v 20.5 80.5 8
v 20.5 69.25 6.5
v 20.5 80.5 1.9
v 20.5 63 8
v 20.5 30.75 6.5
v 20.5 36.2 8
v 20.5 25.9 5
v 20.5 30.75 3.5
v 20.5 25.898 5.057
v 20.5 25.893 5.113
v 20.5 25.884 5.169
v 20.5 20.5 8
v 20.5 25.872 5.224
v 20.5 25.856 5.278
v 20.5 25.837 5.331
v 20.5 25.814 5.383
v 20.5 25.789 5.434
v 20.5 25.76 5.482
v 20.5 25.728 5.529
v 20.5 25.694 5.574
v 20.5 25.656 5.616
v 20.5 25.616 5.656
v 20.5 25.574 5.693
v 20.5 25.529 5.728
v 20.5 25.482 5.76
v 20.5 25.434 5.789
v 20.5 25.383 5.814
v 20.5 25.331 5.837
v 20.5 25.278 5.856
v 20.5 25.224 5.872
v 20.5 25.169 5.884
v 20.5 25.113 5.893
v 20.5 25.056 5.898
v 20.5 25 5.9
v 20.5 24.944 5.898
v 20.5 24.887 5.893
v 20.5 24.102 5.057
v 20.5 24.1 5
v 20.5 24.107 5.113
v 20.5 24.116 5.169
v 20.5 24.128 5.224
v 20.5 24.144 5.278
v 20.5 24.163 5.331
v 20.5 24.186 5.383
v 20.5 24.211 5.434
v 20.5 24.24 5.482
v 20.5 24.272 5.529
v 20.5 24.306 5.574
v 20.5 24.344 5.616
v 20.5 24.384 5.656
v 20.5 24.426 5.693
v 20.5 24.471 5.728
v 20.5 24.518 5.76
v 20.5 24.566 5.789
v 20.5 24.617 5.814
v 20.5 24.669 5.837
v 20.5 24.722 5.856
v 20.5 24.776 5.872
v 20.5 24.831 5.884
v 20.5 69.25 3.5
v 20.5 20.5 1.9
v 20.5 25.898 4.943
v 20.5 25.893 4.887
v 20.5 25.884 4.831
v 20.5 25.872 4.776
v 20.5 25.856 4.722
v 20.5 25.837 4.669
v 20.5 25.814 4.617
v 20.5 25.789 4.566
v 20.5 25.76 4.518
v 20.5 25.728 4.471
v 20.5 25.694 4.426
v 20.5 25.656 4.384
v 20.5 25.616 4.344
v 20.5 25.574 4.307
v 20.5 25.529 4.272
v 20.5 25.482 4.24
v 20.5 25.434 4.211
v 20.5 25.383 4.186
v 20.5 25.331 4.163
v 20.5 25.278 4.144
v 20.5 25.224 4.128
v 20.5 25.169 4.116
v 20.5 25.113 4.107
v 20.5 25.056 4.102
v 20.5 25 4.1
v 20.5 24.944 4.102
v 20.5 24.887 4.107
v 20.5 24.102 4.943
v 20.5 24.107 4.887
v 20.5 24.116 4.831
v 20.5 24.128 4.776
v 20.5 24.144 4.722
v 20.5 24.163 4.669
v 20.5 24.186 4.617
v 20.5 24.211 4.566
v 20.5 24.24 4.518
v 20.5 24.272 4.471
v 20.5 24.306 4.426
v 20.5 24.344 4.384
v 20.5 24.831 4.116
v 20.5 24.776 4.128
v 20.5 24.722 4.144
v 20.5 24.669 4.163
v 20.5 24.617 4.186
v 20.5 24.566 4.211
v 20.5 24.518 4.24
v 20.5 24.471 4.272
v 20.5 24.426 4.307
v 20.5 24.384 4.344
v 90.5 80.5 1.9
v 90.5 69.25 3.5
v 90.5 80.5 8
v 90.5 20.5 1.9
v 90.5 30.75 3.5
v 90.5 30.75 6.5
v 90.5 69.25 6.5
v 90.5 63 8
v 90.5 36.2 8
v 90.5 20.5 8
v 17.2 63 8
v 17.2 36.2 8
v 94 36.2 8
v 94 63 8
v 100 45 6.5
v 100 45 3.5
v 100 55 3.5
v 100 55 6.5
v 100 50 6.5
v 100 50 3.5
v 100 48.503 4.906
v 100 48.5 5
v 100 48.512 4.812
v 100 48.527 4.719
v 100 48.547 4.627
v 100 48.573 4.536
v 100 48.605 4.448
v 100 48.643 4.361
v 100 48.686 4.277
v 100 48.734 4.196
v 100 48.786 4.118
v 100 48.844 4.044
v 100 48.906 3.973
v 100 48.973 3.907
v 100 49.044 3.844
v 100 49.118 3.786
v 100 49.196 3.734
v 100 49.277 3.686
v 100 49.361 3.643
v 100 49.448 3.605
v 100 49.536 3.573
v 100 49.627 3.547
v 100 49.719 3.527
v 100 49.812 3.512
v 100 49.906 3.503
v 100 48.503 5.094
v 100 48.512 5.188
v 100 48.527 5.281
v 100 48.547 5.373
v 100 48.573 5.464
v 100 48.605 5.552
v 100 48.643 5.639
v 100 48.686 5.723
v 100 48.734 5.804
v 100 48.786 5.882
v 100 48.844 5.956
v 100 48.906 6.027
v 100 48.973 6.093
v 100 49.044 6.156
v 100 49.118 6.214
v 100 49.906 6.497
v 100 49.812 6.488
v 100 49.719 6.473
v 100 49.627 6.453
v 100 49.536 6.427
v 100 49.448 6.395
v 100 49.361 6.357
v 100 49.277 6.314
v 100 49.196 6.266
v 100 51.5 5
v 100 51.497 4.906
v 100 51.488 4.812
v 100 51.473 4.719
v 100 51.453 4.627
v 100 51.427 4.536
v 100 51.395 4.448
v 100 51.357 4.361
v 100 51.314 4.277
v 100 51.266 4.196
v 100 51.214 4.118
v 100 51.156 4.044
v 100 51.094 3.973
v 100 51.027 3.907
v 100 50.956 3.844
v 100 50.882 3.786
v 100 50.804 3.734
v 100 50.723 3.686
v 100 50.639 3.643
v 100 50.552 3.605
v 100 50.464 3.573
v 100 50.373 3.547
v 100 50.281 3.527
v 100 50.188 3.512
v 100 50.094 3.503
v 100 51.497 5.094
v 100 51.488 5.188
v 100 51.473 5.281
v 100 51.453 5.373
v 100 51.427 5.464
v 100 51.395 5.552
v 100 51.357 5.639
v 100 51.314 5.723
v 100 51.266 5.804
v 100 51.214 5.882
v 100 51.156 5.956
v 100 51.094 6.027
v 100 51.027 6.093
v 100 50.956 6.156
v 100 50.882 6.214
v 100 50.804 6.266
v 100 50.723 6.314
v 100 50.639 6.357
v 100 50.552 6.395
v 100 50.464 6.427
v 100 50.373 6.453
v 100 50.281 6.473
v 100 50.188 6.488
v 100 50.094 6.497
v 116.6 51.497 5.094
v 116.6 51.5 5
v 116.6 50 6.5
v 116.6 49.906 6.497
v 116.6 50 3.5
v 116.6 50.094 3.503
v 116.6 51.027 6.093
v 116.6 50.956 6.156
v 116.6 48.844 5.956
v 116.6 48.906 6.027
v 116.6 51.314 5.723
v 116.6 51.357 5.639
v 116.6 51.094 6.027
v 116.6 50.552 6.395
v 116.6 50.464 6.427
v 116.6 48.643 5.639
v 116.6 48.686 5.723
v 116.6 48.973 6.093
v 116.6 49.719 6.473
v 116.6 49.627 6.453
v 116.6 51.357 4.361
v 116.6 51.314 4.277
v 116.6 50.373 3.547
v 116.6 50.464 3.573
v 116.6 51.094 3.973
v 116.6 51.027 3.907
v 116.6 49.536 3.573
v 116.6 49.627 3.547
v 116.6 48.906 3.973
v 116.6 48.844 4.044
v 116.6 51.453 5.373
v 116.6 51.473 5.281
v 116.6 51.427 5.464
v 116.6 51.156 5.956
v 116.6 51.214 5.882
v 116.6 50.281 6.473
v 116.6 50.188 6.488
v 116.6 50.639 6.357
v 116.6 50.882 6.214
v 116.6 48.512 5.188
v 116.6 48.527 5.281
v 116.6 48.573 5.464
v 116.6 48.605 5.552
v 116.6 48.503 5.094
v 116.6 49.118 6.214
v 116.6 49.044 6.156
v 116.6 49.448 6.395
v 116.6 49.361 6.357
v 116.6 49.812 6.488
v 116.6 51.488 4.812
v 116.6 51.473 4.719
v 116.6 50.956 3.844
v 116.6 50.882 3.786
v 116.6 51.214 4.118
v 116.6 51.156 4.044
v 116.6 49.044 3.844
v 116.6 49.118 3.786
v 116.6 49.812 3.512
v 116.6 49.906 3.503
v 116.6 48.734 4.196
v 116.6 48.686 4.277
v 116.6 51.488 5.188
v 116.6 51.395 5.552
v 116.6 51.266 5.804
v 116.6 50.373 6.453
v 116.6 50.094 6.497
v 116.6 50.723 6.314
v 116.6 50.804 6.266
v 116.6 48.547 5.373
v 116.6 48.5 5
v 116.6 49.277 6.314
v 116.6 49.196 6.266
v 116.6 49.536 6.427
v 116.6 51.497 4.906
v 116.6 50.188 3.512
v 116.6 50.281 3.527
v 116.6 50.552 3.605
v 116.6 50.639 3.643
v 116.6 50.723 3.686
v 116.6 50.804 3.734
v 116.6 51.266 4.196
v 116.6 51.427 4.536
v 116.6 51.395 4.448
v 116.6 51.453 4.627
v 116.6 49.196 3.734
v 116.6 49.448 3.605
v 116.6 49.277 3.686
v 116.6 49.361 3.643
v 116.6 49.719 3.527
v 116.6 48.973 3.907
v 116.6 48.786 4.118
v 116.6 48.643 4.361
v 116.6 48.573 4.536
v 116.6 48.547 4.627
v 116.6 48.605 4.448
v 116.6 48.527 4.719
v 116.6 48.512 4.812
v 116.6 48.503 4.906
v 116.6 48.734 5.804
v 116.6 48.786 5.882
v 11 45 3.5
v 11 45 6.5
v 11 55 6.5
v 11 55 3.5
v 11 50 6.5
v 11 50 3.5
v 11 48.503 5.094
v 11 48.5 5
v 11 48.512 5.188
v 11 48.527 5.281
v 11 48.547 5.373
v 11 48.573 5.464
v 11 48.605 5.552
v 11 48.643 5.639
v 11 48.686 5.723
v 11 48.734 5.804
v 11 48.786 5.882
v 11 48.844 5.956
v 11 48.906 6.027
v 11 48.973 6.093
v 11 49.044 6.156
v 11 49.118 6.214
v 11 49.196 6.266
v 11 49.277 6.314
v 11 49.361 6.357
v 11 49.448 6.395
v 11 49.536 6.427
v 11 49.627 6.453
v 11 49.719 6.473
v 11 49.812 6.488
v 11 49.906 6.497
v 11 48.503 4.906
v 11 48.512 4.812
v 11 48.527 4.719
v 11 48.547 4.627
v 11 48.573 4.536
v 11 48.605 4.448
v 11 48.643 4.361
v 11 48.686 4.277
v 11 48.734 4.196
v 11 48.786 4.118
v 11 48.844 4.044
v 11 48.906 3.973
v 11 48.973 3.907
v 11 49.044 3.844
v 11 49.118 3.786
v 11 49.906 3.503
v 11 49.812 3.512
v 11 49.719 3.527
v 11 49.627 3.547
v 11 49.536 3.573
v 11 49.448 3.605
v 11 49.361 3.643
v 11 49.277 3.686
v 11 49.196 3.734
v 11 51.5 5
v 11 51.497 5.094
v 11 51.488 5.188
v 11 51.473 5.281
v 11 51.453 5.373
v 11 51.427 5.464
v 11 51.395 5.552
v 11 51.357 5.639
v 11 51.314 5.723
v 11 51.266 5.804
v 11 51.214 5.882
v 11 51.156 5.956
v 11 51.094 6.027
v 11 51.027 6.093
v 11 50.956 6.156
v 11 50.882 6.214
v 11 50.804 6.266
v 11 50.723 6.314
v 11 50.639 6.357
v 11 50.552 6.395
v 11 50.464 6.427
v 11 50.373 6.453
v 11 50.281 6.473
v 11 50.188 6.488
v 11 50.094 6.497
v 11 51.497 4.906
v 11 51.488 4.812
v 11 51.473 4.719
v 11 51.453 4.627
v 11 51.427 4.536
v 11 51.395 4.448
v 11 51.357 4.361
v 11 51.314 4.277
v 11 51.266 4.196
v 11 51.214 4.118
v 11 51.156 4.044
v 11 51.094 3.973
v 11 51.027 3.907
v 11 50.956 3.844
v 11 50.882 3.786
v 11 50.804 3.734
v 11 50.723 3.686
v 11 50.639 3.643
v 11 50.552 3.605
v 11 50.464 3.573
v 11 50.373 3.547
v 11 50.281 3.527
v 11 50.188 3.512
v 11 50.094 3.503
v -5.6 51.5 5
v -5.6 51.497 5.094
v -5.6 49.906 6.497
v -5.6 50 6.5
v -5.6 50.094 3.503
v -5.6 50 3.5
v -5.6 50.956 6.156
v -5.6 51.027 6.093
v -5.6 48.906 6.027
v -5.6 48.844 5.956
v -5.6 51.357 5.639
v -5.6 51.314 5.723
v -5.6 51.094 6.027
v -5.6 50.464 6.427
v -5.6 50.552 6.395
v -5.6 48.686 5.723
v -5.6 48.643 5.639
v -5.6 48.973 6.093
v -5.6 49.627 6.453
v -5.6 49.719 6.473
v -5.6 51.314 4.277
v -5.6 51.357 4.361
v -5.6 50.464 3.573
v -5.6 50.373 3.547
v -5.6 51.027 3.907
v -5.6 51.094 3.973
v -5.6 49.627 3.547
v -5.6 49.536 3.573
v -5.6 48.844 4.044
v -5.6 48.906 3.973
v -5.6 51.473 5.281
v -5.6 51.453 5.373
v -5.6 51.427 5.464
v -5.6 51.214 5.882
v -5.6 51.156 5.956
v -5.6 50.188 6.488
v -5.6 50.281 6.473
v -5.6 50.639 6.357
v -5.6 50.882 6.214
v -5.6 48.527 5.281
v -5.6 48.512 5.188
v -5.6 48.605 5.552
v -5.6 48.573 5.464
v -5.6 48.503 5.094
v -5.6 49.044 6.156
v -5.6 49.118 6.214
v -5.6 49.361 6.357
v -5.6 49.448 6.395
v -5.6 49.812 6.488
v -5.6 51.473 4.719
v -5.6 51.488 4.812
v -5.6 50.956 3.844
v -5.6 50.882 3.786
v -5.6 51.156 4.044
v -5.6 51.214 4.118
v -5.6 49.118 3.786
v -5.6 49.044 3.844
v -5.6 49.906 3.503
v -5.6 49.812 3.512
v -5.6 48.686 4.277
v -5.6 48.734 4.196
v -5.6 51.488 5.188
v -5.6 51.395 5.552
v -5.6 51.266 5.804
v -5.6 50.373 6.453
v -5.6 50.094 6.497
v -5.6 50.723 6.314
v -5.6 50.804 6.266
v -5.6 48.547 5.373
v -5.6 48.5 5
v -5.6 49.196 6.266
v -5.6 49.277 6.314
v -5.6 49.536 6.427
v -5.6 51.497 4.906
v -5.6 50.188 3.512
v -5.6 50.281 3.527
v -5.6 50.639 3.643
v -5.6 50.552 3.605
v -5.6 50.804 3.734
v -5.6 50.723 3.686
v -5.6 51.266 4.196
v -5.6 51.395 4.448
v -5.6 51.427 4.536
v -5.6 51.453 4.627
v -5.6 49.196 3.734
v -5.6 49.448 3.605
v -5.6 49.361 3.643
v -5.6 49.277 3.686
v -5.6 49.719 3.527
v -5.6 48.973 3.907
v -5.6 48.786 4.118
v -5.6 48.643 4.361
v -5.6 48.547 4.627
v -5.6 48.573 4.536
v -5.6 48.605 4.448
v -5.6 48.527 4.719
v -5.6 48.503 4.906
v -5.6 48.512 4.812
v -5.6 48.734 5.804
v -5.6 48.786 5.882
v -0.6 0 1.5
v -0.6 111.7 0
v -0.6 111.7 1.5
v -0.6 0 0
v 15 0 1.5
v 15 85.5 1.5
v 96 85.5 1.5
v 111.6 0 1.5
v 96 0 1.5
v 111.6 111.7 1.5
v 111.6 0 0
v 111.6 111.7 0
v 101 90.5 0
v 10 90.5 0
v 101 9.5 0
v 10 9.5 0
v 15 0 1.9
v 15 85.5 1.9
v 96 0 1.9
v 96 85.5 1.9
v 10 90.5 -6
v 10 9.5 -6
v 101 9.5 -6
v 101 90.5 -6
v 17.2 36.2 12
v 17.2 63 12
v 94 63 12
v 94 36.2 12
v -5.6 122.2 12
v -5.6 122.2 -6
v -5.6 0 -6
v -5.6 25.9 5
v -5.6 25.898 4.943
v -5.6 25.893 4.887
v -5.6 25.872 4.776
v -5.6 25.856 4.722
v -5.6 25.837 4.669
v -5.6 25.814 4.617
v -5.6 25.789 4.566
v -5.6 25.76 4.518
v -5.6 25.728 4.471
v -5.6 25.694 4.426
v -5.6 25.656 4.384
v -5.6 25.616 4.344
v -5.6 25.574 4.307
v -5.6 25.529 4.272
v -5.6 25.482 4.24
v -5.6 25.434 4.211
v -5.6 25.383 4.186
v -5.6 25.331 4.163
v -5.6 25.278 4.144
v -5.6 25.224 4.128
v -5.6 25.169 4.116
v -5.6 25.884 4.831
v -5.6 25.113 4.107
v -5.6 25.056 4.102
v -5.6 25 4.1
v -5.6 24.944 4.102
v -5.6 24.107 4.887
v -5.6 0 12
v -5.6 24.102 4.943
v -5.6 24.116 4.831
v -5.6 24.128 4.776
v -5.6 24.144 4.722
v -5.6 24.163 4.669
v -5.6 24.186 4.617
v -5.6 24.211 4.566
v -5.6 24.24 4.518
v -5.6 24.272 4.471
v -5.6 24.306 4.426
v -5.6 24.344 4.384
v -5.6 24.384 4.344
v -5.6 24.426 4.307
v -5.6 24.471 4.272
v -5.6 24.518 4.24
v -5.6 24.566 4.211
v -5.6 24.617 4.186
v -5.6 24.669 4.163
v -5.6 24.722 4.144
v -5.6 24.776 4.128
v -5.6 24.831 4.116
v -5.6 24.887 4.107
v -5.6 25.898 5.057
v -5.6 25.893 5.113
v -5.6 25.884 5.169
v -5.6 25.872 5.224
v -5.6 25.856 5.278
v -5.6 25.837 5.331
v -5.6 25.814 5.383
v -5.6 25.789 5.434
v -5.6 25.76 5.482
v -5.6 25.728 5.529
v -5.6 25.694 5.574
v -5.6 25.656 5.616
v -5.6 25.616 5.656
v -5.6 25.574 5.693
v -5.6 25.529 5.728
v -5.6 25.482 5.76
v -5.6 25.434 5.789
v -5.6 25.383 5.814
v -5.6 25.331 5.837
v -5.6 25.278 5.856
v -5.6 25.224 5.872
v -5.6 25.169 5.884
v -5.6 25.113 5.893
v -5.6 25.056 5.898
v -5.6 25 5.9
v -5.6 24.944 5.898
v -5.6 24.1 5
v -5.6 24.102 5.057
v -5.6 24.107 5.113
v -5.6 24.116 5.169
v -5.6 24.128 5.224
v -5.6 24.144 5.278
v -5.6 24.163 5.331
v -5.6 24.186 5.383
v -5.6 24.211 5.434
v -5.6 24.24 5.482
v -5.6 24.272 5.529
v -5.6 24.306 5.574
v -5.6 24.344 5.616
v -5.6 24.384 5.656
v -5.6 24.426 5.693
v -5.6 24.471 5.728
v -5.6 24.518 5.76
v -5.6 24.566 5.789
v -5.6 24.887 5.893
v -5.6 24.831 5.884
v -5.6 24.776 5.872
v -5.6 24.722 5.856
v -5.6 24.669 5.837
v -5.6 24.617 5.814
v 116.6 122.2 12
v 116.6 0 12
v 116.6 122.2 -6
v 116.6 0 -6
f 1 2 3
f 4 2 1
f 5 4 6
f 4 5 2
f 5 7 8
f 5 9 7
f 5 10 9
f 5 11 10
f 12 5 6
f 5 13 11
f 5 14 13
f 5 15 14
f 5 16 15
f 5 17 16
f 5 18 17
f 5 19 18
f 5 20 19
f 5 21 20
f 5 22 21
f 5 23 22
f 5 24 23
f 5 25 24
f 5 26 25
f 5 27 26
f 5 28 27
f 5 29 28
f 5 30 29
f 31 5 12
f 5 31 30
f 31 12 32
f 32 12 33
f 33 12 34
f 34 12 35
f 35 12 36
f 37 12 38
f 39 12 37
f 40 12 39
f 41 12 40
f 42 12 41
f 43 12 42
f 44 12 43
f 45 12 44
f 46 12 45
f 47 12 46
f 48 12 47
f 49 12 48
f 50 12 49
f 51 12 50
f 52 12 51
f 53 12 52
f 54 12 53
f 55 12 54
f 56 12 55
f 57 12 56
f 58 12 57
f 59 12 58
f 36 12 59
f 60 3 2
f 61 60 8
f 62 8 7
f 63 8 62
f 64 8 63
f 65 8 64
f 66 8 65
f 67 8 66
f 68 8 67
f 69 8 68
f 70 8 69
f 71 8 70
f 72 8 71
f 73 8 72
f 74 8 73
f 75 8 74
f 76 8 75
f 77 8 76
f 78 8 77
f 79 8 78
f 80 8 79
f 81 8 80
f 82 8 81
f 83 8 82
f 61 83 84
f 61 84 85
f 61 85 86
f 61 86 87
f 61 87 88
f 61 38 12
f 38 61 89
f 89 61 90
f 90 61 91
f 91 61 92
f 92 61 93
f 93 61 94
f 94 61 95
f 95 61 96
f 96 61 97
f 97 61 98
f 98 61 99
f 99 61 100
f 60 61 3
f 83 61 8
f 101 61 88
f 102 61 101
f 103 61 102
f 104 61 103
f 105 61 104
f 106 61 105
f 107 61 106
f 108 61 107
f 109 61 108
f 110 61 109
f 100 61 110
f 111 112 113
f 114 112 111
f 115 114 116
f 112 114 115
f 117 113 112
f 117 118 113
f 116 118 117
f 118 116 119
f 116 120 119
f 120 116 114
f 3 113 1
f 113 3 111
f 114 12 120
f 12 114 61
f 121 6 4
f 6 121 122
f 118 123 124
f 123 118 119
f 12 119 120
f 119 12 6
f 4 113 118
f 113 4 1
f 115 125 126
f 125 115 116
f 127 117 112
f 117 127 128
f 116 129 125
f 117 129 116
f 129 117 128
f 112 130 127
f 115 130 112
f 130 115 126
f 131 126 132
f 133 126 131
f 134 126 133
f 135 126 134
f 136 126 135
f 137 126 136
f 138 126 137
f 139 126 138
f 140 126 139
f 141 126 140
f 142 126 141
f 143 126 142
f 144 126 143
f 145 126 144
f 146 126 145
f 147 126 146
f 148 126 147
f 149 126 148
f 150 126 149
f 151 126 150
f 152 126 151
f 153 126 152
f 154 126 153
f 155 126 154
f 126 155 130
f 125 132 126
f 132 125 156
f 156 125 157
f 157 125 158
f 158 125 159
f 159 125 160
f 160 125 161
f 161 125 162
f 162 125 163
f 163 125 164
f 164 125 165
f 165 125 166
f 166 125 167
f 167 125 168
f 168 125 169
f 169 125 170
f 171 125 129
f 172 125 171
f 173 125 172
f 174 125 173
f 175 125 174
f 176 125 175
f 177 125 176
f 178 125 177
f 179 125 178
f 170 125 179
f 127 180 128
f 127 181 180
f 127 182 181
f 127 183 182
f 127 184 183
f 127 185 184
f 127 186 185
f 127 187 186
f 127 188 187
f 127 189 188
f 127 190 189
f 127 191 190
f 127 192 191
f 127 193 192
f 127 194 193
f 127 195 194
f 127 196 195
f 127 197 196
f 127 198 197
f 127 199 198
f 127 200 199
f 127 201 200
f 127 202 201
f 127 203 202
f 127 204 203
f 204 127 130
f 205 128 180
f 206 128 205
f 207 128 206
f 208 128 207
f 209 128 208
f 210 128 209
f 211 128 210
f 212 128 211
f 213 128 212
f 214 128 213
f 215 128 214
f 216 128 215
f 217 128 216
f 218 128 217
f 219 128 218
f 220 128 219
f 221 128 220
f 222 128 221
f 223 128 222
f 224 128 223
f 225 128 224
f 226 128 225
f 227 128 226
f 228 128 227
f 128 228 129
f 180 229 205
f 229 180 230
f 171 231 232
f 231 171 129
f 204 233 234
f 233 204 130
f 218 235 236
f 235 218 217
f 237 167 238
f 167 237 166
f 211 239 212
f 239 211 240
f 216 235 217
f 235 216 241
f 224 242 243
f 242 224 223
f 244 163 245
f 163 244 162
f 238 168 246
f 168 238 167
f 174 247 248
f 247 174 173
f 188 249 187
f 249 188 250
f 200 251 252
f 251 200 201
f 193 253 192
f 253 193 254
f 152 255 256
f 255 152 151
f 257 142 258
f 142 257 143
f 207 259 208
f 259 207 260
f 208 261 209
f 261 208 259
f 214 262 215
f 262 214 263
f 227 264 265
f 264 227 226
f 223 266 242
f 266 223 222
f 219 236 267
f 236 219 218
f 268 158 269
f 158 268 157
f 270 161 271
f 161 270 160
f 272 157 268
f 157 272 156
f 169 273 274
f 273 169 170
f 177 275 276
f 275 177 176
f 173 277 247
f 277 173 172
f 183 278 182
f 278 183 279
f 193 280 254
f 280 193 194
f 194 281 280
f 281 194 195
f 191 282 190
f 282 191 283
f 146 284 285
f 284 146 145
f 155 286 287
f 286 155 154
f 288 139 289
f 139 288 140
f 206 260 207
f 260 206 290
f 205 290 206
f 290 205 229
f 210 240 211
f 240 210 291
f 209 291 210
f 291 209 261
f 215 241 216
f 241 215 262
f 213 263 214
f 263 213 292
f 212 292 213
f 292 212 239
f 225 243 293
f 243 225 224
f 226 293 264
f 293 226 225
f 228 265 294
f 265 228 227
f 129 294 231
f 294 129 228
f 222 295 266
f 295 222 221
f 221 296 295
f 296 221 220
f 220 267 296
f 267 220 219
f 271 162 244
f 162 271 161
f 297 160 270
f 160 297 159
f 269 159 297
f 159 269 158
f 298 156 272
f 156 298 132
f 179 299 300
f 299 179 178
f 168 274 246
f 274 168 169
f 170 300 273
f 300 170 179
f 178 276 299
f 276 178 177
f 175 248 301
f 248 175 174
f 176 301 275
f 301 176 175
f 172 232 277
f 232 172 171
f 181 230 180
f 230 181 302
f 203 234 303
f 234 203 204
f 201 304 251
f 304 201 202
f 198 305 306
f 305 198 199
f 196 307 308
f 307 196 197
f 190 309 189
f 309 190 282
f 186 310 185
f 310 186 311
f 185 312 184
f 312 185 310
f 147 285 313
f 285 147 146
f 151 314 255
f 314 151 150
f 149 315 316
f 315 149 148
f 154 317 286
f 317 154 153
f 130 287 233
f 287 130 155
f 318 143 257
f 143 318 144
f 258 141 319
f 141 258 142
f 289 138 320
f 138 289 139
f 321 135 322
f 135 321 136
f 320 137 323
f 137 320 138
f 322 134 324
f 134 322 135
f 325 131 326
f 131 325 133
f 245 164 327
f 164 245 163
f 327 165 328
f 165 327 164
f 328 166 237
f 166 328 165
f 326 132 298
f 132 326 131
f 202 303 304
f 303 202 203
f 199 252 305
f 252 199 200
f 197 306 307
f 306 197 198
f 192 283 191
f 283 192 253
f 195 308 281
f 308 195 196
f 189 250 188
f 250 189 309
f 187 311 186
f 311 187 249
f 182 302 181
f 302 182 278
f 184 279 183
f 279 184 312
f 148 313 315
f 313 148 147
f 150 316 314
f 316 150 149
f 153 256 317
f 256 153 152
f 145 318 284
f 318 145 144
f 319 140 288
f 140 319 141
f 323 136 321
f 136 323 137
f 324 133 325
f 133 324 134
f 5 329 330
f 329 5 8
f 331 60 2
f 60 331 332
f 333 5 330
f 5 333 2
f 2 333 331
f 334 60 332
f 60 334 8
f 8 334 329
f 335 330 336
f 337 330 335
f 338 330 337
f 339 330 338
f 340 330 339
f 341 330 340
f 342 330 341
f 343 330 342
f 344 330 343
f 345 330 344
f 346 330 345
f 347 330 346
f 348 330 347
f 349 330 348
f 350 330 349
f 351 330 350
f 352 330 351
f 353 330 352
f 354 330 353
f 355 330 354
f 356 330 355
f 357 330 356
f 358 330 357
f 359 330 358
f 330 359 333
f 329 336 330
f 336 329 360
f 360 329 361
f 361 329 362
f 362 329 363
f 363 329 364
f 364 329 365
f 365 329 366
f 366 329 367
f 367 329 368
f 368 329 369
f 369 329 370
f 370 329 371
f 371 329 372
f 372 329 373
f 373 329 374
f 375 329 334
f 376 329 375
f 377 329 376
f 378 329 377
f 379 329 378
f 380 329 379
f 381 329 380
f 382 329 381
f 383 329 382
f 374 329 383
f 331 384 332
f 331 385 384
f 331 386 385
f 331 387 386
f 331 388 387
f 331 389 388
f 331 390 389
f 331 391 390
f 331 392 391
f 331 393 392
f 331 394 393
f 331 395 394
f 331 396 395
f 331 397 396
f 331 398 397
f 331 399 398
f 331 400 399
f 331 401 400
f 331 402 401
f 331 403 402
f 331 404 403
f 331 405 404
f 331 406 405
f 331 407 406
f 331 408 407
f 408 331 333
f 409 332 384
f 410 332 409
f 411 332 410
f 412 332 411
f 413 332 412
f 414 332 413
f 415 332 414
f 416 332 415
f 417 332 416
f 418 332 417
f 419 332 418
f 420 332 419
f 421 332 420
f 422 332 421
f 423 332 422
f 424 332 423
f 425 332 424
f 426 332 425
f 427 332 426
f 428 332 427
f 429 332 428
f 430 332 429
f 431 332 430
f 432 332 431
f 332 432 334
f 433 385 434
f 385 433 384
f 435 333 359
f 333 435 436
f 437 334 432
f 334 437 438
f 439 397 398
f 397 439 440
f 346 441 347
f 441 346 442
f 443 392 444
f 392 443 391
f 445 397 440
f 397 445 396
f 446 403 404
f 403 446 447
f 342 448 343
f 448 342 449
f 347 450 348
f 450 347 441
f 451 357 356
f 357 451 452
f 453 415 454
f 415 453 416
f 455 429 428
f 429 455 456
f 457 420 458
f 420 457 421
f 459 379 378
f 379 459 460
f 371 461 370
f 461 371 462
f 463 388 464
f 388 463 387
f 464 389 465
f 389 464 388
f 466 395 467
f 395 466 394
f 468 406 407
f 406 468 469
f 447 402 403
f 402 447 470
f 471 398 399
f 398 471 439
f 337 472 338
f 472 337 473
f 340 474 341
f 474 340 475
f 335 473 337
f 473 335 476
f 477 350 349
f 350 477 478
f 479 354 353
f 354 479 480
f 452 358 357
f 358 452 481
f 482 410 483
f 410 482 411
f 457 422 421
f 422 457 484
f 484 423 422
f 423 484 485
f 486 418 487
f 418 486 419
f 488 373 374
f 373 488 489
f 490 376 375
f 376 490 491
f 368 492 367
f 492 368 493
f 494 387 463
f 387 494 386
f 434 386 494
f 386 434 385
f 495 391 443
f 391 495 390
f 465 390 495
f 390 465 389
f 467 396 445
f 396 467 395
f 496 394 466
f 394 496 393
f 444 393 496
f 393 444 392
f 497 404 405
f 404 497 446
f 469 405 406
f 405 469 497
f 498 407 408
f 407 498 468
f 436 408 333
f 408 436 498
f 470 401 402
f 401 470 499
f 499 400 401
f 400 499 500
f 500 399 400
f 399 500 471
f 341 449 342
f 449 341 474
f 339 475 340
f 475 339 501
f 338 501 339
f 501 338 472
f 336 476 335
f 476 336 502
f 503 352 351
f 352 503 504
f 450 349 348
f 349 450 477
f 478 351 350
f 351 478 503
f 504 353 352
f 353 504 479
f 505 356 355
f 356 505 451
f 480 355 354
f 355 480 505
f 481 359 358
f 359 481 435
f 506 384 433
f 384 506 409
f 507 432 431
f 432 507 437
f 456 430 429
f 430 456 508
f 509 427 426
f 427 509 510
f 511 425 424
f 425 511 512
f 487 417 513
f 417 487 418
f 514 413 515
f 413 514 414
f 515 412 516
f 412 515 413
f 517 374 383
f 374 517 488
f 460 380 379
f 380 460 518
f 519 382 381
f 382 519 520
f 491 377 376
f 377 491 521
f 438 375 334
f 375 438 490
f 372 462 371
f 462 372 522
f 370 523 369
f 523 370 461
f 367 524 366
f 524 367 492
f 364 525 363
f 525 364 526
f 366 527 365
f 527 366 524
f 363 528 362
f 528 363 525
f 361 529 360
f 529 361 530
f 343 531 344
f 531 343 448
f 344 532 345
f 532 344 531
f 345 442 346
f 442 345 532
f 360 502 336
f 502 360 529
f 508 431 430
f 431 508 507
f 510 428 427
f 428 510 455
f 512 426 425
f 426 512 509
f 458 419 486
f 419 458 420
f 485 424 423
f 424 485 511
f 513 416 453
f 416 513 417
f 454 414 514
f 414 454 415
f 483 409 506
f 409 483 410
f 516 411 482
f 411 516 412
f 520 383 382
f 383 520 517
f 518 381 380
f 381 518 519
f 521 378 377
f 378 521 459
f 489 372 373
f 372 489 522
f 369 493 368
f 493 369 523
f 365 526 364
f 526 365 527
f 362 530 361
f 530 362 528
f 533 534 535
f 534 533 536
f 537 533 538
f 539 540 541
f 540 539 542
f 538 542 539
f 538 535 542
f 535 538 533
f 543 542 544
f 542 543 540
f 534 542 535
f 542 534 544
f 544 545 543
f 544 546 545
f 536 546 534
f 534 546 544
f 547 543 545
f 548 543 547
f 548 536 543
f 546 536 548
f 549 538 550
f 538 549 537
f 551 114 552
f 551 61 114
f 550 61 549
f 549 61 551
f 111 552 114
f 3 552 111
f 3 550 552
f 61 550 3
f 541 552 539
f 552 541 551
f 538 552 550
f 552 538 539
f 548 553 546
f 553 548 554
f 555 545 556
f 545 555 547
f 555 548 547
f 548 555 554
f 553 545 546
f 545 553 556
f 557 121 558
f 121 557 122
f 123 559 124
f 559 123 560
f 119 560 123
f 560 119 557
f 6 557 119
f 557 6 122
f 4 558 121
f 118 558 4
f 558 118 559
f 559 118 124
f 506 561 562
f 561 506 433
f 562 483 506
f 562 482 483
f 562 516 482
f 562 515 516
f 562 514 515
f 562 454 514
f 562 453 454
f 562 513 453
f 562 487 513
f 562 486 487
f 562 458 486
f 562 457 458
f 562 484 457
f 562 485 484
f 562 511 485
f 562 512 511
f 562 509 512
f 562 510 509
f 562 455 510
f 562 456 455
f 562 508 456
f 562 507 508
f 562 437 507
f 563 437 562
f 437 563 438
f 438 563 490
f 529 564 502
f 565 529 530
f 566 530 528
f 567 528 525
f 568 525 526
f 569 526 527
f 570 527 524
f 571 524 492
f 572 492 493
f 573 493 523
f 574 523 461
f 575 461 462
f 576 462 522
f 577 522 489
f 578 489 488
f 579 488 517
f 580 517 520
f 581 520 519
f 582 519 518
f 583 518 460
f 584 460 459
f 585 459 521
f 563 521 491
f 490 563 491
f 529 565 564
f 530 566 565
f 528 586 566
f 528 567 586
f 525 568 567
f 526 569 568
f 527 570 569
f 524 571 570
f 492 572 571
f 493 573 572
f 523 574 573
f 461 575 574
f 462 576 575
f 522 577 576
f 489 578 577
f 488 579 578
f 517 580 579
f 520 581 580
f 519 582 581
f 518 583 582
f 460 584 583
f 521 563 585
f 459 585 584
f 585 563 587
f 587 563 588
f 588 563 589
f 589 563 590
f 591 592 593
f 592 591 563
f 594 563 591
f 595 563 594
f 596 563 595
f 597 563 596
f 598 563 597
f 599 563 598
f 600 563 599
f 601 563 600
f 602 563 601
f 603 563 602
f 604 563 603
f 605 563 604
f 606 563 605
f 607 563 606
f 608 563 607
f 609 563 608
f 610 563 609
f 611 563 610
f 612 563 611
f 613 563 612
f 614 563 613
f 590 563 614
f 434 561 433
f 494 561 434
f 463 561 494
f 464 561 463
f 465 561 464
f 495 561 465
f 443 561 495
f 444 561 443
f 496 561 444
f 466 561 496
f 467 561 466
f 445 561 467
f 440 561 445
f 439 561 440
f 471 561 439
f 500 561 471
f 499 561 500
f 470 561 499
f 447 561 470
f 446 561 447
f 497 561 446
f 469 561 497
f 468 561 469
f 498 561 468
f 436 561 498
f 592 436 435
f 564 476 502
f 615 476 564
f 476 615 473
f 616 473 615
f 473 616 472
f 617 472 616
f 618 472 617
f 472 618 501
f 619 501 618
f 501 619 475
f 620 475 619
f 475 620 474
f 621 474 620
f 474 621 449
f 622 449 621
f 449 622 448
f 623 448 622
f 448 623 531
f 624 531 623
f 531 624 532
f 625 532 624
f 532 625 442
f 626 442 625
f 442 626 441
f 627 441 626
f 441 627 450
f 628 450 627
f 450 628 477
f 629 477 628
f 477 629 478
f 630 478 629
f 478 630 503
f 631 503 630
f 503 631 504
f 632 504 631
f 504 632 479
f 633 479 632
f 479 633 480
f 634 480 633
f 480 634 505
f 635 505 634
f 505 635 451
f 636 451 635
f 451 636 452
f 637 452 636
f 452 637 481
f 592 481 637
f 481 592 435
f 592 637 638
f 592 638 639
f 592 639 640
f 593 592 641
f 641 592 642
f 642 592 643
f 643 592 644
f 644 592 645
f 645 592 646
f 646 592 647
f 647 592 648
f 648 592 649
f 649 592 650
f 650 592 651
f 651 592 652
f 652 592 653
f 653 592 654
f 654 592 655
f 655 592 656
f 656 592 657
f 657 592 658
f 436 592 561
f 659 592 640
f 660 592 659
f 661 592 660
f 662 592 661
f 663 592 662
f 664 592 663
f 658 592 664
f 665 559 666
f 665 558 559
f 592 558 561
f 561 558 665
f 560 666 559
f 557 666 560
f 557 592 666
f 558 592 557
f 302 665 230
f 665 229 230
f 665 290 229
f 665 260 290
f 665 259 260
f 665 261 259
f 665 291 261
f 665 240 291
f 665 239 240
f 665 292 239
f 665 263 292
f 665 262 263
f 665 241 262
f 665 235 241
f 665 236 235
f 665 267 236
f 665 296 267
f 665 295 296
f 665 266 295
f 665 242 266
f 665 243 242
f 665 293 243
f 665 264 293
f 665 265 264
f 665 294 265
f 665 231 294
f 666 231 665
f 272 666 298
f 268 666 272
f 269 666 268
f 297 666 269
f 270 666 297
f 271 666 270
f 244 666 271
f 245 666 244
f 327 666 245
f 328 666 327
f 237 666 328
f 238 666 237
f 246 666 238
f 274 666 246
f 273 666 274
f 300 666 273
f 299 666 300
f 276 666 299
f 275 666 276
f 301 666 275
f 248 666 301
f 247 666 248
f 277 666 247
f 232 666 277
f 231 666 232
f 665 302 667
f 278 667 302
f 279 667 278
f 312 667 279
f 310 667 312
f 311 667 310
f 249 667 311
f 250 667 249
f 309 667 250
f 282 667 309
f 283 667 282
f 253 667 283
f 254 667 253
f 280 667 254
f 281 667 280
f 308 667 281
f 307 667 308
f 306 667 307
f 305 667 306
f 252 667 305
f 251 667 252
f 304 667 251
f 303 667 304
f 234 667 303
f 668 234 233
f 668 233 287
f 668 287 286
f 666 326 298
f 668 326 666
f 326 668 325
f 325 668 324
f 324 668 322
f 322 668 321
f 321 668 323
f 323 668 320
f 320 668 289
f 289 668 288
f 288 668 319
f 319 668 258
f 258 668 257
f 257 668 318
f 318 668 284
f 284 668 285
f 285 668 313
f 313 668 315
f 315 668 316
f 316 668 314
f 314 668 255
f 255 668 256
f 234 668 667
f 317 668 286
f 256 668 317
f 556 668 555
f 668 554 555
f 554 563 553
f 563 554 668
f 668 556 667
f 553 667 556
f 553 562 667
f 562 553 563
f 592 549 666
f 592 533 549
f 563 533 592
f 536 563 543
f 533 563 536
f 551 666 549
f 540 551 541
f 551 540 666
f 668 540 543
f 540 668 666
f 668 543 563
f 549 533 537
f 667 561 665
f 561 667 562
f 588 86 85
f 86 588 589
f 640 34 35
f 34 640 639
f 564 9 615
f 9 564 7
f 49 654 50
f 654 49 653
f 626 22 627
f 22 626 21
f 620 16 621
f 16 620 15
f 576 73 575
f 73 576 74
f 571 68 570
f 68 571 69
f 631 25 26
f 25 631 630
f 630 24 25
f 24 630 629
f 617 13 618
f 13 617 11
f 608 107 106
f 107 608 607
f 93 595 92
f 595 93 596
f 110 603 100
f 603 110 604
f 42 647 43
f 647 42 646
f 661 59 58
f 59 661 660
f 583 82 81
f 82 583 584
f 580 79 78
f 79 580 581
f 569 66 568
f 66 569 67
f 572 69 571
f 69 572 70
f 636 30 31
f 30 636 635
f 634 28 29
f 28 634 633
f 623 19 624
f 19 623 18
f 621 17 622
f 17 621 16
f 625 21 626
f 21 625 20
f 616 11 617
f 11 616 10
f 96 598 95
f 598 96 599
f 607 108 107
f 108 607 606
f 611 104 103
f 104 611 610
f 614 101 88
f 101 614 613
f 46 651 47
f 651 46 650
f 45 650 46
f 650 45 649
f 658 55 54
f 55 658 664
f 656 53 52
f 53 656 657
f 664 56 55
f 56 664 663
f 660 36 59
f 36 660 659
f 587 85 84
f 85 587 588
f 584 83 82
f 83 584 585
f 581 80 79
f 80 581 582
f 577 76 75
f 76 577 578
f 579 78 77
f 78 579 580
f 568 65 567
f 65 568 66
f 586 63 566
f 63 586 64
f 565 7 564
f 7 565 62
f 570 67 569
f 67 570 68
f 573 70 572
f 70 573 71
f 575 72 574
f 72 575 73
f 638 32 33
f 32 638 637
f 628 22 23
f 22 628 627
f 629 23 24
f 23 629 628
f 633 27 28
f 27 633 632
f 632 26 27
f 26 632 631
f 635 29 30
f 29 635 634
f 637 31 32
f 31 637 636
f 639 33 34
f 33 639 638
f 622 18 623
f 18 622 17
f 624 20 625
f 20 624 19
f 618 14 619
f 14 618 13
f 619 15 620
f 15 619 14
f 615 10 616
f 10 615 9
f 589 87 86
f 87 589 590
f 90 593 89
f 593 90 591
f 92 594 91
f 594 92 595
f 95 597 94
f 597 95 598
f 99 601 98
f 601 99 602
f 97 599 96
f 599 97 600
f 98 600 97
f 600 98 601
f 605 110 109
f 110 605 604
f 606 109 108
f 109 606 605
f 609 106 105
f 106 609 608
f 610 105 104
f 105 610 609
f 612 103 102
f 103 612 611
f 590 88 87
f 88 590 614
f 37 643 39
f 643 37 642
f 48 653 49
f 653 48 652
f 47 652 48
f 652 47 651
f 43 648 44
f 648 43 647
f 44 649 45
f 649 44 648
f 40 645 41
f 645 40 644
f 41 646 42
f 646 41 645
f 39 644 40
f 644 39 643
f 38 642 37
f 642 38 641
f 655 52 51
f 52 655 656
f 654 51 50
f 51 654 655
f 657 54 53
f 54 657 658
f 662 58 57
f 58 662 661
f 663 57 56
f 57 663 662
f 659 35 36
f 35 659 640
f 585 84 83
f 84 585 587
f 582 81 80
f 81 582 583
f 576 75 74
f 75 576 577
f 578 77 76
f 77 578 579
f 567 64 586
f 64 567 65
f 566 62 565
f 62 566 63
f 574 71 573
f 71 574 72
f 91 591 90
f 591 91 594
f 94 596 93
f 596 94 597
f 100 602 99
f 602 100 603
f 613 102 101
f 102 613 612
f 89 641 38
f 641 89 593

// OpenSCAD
module ceramic() {
    color("Gainsboro") cube([111,111,1.2]); 
}

module netbase() {
    color("SandyBrown") cube([80,90,0.4]); 
}

module cut() {
    color("SandyBrown") cube([40,25,3]); 
}

module net() {
    difference()
    {
        netbase();
        translate([-10,-5,-1]) cut();
        translate([50,-5,-1]) cut();
    }    
}

module gnd() {
    color("DarkKhaki") cube([90,80,6]);     
}

module visible() {
    color("Red") cube([70,70,10]); 
}

module innerFrame() {
    union()
    {        
        translate([15.5,-5,1.2]) net();        
        ceramic();
        translate([10.5,10,-6])gnd();
    }    
}

// object with tolerances
module ceramic1() {    
    color("Gainsboro") cube([112.2,112.2,1.5]); // y trnsl 0.5
}

module netbase1() {    
    color("SandyBrown") cube([81,91,0.5]); // y trnsl 0.5
}


module gnd1() {
    color("DarkKhaki") cube([91,81,6.4]); // y trnsl 0.5
}

module visible1() {
    difference(){
        color("Red") cube([70,60,10]);
        translate([-5,-5,7])
        color("Red") cube([80,70,10]);
    }
}

module glass1() {
    color("Red") cube([76.8,26.6,100]);    
    }


module innerFrame1() {
    union()
    {
        translate([-0.6,-0.5,0]) ceramic1();
        translate([15,-5.5,1.4]) netbase1();        
        translate([10,9.5,-6.2])gnd1();
        translate([20.5,20.5,1])visible1();
        translate([17.2,36.3,1+7])glass1();
    }    
}

module  hole(){
    translate([-10,0,5])
    rotate ([0,90,0])
    color("Red")
    cylinder (130,d=3, $fn=100);
}

module  tempHole(){
    translate([-10,0,5])
    rotate ([0,90,0])
    color("Red")
    cylinder (60,d=1.8, $fn=100);
}

module box() {
    translate([-5.6,0,-6])
    color("Red") cube([122.2,122.2,18]);    
}
module prism(l, w, h){
       polyhedron(
               points=[[0,0,0], [l,0,0], [l,w,0], [0,w,0], [3*l/8,0,h], [5*l/8,0,h],
    [5*l/8,w,h], [3*l/8,w,h]],
               faces=[[0,1,2,3], [4,7,6,5], [0,3,7,4], [2,6,7,3], [1,5,6,2], [0,4,5,1]]
               );
       }
 
     

       
 module  cavHole(l, w, h){
    translate([l/2,w/2,h/10])    
    color("Red")
    cylinder (3*h,d=3, $fn=100);
}
       
module cavity(l,w,h){
    rotate([90,0,90])
    union(){
        prism(l, w, h);
        cavHole(l,w,h);        
        } 
    }
    
l = 40;
w = 3;
h = 10;

module objectBox() {
    difference()
    {
        box();
        innerFrame1();
        translate([0,25,0]) tempHole();
        
        //cavities

        translate([90,30,3.5]) cavity(l, w, h);        
        translate([21,30,3.5])
        mirror([1,0,0]) cavity(l, w, h);
        
        //holes
    /*    
        translate([0,35,0]) hole();
        translate([0,50,0]) hole();
        translate([0,65,0]) hole();
      */  
    }
}

objectBox(); 
//innerFrame1();
//visible1();
//translate([20.5,20.5,1])visible1();
